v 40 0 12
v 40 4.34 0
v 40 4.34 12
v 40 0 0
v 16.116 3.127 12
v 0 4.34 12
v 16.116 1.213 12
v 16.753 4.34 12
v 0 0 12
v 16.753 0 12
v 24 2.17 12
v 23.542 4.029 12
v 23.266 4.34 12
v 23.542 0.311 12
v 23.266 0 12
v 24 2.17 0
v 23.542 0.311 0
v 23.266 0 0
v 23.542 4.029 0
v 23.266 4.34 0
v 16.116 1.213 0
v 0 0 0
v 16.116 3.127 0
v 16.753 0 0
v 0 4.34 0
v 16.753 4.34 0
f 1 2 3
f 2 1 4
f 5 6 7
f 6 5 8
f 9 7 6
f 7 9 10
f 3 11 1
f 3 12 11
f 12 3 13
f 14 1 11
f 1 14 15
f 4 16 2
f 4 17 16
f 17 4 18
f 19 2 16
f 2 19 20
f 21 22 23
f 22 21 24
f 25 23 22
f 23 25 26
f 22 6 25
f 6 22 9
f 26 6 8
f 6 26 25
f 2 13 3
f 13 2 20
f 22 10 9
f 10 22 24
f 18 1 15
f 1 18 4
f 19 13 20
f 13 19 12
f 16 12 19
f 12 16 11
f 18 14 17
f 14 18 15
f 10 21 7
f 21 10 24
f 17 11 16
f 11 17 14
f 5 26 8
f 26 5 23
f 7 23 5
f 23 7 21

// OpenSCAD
/* doodle-meta {"version":1,"parameters":{"width":{"label":"Overall width","description":"Changes the body width","unit":"mm","feature":"body_width"},"depth":{"label":"Overall depth","description":"Changes the body depth","unit":"mm","feature":"body_depth"},"height":{"label":"Overall height","description":"Changes the body height","unit":"mm","feature":"body_height"},"hole_diameter":{"label":"Hole diameter","description":"Changes the diameter of the central through-hole","unit":"mm","feature":"central_hole"}},"features":{"body_width":{"kind":"dimension","axis":"x","label":"Overall width"},"body_depth":{"kind":"dimension","axis":"y","label":"Overall depth"},"body_height":{"kind":"dimension","axis":"z","label":"Overall height"},"central_hole":{"kind":"region","label":"Central through-hole","min":[{"parameter":"width","scale":0.5,"offset":-4.0},{"parameter":"depth","scale":0.5,"offset":-4.0},0],"max":[{"parameter":"width","scale":0.5,"offset":4.0},{"parameter":"depth","scale":0.5,"offset":4.0},{"parameter":"height","scale":1.0,"offset":0}]}}} */

// Parameters
width = 40.0;
depth = 4.34;
height = 12.0;
hole_diameter = 8.0;

// Derived constants (not user-editable)
eps = 0.1;

// Main design
difference() {
    // Positive body: rectangular block sitting on Z=0
    cube([width, depth, height], center=false);

    // Subtractive through-hole: axis along Z, centered in XY
    translate([width/2, depth/2, -eps])
        cylinder(d=hole_diameter, h=height + 2*eps, center=false);
}
